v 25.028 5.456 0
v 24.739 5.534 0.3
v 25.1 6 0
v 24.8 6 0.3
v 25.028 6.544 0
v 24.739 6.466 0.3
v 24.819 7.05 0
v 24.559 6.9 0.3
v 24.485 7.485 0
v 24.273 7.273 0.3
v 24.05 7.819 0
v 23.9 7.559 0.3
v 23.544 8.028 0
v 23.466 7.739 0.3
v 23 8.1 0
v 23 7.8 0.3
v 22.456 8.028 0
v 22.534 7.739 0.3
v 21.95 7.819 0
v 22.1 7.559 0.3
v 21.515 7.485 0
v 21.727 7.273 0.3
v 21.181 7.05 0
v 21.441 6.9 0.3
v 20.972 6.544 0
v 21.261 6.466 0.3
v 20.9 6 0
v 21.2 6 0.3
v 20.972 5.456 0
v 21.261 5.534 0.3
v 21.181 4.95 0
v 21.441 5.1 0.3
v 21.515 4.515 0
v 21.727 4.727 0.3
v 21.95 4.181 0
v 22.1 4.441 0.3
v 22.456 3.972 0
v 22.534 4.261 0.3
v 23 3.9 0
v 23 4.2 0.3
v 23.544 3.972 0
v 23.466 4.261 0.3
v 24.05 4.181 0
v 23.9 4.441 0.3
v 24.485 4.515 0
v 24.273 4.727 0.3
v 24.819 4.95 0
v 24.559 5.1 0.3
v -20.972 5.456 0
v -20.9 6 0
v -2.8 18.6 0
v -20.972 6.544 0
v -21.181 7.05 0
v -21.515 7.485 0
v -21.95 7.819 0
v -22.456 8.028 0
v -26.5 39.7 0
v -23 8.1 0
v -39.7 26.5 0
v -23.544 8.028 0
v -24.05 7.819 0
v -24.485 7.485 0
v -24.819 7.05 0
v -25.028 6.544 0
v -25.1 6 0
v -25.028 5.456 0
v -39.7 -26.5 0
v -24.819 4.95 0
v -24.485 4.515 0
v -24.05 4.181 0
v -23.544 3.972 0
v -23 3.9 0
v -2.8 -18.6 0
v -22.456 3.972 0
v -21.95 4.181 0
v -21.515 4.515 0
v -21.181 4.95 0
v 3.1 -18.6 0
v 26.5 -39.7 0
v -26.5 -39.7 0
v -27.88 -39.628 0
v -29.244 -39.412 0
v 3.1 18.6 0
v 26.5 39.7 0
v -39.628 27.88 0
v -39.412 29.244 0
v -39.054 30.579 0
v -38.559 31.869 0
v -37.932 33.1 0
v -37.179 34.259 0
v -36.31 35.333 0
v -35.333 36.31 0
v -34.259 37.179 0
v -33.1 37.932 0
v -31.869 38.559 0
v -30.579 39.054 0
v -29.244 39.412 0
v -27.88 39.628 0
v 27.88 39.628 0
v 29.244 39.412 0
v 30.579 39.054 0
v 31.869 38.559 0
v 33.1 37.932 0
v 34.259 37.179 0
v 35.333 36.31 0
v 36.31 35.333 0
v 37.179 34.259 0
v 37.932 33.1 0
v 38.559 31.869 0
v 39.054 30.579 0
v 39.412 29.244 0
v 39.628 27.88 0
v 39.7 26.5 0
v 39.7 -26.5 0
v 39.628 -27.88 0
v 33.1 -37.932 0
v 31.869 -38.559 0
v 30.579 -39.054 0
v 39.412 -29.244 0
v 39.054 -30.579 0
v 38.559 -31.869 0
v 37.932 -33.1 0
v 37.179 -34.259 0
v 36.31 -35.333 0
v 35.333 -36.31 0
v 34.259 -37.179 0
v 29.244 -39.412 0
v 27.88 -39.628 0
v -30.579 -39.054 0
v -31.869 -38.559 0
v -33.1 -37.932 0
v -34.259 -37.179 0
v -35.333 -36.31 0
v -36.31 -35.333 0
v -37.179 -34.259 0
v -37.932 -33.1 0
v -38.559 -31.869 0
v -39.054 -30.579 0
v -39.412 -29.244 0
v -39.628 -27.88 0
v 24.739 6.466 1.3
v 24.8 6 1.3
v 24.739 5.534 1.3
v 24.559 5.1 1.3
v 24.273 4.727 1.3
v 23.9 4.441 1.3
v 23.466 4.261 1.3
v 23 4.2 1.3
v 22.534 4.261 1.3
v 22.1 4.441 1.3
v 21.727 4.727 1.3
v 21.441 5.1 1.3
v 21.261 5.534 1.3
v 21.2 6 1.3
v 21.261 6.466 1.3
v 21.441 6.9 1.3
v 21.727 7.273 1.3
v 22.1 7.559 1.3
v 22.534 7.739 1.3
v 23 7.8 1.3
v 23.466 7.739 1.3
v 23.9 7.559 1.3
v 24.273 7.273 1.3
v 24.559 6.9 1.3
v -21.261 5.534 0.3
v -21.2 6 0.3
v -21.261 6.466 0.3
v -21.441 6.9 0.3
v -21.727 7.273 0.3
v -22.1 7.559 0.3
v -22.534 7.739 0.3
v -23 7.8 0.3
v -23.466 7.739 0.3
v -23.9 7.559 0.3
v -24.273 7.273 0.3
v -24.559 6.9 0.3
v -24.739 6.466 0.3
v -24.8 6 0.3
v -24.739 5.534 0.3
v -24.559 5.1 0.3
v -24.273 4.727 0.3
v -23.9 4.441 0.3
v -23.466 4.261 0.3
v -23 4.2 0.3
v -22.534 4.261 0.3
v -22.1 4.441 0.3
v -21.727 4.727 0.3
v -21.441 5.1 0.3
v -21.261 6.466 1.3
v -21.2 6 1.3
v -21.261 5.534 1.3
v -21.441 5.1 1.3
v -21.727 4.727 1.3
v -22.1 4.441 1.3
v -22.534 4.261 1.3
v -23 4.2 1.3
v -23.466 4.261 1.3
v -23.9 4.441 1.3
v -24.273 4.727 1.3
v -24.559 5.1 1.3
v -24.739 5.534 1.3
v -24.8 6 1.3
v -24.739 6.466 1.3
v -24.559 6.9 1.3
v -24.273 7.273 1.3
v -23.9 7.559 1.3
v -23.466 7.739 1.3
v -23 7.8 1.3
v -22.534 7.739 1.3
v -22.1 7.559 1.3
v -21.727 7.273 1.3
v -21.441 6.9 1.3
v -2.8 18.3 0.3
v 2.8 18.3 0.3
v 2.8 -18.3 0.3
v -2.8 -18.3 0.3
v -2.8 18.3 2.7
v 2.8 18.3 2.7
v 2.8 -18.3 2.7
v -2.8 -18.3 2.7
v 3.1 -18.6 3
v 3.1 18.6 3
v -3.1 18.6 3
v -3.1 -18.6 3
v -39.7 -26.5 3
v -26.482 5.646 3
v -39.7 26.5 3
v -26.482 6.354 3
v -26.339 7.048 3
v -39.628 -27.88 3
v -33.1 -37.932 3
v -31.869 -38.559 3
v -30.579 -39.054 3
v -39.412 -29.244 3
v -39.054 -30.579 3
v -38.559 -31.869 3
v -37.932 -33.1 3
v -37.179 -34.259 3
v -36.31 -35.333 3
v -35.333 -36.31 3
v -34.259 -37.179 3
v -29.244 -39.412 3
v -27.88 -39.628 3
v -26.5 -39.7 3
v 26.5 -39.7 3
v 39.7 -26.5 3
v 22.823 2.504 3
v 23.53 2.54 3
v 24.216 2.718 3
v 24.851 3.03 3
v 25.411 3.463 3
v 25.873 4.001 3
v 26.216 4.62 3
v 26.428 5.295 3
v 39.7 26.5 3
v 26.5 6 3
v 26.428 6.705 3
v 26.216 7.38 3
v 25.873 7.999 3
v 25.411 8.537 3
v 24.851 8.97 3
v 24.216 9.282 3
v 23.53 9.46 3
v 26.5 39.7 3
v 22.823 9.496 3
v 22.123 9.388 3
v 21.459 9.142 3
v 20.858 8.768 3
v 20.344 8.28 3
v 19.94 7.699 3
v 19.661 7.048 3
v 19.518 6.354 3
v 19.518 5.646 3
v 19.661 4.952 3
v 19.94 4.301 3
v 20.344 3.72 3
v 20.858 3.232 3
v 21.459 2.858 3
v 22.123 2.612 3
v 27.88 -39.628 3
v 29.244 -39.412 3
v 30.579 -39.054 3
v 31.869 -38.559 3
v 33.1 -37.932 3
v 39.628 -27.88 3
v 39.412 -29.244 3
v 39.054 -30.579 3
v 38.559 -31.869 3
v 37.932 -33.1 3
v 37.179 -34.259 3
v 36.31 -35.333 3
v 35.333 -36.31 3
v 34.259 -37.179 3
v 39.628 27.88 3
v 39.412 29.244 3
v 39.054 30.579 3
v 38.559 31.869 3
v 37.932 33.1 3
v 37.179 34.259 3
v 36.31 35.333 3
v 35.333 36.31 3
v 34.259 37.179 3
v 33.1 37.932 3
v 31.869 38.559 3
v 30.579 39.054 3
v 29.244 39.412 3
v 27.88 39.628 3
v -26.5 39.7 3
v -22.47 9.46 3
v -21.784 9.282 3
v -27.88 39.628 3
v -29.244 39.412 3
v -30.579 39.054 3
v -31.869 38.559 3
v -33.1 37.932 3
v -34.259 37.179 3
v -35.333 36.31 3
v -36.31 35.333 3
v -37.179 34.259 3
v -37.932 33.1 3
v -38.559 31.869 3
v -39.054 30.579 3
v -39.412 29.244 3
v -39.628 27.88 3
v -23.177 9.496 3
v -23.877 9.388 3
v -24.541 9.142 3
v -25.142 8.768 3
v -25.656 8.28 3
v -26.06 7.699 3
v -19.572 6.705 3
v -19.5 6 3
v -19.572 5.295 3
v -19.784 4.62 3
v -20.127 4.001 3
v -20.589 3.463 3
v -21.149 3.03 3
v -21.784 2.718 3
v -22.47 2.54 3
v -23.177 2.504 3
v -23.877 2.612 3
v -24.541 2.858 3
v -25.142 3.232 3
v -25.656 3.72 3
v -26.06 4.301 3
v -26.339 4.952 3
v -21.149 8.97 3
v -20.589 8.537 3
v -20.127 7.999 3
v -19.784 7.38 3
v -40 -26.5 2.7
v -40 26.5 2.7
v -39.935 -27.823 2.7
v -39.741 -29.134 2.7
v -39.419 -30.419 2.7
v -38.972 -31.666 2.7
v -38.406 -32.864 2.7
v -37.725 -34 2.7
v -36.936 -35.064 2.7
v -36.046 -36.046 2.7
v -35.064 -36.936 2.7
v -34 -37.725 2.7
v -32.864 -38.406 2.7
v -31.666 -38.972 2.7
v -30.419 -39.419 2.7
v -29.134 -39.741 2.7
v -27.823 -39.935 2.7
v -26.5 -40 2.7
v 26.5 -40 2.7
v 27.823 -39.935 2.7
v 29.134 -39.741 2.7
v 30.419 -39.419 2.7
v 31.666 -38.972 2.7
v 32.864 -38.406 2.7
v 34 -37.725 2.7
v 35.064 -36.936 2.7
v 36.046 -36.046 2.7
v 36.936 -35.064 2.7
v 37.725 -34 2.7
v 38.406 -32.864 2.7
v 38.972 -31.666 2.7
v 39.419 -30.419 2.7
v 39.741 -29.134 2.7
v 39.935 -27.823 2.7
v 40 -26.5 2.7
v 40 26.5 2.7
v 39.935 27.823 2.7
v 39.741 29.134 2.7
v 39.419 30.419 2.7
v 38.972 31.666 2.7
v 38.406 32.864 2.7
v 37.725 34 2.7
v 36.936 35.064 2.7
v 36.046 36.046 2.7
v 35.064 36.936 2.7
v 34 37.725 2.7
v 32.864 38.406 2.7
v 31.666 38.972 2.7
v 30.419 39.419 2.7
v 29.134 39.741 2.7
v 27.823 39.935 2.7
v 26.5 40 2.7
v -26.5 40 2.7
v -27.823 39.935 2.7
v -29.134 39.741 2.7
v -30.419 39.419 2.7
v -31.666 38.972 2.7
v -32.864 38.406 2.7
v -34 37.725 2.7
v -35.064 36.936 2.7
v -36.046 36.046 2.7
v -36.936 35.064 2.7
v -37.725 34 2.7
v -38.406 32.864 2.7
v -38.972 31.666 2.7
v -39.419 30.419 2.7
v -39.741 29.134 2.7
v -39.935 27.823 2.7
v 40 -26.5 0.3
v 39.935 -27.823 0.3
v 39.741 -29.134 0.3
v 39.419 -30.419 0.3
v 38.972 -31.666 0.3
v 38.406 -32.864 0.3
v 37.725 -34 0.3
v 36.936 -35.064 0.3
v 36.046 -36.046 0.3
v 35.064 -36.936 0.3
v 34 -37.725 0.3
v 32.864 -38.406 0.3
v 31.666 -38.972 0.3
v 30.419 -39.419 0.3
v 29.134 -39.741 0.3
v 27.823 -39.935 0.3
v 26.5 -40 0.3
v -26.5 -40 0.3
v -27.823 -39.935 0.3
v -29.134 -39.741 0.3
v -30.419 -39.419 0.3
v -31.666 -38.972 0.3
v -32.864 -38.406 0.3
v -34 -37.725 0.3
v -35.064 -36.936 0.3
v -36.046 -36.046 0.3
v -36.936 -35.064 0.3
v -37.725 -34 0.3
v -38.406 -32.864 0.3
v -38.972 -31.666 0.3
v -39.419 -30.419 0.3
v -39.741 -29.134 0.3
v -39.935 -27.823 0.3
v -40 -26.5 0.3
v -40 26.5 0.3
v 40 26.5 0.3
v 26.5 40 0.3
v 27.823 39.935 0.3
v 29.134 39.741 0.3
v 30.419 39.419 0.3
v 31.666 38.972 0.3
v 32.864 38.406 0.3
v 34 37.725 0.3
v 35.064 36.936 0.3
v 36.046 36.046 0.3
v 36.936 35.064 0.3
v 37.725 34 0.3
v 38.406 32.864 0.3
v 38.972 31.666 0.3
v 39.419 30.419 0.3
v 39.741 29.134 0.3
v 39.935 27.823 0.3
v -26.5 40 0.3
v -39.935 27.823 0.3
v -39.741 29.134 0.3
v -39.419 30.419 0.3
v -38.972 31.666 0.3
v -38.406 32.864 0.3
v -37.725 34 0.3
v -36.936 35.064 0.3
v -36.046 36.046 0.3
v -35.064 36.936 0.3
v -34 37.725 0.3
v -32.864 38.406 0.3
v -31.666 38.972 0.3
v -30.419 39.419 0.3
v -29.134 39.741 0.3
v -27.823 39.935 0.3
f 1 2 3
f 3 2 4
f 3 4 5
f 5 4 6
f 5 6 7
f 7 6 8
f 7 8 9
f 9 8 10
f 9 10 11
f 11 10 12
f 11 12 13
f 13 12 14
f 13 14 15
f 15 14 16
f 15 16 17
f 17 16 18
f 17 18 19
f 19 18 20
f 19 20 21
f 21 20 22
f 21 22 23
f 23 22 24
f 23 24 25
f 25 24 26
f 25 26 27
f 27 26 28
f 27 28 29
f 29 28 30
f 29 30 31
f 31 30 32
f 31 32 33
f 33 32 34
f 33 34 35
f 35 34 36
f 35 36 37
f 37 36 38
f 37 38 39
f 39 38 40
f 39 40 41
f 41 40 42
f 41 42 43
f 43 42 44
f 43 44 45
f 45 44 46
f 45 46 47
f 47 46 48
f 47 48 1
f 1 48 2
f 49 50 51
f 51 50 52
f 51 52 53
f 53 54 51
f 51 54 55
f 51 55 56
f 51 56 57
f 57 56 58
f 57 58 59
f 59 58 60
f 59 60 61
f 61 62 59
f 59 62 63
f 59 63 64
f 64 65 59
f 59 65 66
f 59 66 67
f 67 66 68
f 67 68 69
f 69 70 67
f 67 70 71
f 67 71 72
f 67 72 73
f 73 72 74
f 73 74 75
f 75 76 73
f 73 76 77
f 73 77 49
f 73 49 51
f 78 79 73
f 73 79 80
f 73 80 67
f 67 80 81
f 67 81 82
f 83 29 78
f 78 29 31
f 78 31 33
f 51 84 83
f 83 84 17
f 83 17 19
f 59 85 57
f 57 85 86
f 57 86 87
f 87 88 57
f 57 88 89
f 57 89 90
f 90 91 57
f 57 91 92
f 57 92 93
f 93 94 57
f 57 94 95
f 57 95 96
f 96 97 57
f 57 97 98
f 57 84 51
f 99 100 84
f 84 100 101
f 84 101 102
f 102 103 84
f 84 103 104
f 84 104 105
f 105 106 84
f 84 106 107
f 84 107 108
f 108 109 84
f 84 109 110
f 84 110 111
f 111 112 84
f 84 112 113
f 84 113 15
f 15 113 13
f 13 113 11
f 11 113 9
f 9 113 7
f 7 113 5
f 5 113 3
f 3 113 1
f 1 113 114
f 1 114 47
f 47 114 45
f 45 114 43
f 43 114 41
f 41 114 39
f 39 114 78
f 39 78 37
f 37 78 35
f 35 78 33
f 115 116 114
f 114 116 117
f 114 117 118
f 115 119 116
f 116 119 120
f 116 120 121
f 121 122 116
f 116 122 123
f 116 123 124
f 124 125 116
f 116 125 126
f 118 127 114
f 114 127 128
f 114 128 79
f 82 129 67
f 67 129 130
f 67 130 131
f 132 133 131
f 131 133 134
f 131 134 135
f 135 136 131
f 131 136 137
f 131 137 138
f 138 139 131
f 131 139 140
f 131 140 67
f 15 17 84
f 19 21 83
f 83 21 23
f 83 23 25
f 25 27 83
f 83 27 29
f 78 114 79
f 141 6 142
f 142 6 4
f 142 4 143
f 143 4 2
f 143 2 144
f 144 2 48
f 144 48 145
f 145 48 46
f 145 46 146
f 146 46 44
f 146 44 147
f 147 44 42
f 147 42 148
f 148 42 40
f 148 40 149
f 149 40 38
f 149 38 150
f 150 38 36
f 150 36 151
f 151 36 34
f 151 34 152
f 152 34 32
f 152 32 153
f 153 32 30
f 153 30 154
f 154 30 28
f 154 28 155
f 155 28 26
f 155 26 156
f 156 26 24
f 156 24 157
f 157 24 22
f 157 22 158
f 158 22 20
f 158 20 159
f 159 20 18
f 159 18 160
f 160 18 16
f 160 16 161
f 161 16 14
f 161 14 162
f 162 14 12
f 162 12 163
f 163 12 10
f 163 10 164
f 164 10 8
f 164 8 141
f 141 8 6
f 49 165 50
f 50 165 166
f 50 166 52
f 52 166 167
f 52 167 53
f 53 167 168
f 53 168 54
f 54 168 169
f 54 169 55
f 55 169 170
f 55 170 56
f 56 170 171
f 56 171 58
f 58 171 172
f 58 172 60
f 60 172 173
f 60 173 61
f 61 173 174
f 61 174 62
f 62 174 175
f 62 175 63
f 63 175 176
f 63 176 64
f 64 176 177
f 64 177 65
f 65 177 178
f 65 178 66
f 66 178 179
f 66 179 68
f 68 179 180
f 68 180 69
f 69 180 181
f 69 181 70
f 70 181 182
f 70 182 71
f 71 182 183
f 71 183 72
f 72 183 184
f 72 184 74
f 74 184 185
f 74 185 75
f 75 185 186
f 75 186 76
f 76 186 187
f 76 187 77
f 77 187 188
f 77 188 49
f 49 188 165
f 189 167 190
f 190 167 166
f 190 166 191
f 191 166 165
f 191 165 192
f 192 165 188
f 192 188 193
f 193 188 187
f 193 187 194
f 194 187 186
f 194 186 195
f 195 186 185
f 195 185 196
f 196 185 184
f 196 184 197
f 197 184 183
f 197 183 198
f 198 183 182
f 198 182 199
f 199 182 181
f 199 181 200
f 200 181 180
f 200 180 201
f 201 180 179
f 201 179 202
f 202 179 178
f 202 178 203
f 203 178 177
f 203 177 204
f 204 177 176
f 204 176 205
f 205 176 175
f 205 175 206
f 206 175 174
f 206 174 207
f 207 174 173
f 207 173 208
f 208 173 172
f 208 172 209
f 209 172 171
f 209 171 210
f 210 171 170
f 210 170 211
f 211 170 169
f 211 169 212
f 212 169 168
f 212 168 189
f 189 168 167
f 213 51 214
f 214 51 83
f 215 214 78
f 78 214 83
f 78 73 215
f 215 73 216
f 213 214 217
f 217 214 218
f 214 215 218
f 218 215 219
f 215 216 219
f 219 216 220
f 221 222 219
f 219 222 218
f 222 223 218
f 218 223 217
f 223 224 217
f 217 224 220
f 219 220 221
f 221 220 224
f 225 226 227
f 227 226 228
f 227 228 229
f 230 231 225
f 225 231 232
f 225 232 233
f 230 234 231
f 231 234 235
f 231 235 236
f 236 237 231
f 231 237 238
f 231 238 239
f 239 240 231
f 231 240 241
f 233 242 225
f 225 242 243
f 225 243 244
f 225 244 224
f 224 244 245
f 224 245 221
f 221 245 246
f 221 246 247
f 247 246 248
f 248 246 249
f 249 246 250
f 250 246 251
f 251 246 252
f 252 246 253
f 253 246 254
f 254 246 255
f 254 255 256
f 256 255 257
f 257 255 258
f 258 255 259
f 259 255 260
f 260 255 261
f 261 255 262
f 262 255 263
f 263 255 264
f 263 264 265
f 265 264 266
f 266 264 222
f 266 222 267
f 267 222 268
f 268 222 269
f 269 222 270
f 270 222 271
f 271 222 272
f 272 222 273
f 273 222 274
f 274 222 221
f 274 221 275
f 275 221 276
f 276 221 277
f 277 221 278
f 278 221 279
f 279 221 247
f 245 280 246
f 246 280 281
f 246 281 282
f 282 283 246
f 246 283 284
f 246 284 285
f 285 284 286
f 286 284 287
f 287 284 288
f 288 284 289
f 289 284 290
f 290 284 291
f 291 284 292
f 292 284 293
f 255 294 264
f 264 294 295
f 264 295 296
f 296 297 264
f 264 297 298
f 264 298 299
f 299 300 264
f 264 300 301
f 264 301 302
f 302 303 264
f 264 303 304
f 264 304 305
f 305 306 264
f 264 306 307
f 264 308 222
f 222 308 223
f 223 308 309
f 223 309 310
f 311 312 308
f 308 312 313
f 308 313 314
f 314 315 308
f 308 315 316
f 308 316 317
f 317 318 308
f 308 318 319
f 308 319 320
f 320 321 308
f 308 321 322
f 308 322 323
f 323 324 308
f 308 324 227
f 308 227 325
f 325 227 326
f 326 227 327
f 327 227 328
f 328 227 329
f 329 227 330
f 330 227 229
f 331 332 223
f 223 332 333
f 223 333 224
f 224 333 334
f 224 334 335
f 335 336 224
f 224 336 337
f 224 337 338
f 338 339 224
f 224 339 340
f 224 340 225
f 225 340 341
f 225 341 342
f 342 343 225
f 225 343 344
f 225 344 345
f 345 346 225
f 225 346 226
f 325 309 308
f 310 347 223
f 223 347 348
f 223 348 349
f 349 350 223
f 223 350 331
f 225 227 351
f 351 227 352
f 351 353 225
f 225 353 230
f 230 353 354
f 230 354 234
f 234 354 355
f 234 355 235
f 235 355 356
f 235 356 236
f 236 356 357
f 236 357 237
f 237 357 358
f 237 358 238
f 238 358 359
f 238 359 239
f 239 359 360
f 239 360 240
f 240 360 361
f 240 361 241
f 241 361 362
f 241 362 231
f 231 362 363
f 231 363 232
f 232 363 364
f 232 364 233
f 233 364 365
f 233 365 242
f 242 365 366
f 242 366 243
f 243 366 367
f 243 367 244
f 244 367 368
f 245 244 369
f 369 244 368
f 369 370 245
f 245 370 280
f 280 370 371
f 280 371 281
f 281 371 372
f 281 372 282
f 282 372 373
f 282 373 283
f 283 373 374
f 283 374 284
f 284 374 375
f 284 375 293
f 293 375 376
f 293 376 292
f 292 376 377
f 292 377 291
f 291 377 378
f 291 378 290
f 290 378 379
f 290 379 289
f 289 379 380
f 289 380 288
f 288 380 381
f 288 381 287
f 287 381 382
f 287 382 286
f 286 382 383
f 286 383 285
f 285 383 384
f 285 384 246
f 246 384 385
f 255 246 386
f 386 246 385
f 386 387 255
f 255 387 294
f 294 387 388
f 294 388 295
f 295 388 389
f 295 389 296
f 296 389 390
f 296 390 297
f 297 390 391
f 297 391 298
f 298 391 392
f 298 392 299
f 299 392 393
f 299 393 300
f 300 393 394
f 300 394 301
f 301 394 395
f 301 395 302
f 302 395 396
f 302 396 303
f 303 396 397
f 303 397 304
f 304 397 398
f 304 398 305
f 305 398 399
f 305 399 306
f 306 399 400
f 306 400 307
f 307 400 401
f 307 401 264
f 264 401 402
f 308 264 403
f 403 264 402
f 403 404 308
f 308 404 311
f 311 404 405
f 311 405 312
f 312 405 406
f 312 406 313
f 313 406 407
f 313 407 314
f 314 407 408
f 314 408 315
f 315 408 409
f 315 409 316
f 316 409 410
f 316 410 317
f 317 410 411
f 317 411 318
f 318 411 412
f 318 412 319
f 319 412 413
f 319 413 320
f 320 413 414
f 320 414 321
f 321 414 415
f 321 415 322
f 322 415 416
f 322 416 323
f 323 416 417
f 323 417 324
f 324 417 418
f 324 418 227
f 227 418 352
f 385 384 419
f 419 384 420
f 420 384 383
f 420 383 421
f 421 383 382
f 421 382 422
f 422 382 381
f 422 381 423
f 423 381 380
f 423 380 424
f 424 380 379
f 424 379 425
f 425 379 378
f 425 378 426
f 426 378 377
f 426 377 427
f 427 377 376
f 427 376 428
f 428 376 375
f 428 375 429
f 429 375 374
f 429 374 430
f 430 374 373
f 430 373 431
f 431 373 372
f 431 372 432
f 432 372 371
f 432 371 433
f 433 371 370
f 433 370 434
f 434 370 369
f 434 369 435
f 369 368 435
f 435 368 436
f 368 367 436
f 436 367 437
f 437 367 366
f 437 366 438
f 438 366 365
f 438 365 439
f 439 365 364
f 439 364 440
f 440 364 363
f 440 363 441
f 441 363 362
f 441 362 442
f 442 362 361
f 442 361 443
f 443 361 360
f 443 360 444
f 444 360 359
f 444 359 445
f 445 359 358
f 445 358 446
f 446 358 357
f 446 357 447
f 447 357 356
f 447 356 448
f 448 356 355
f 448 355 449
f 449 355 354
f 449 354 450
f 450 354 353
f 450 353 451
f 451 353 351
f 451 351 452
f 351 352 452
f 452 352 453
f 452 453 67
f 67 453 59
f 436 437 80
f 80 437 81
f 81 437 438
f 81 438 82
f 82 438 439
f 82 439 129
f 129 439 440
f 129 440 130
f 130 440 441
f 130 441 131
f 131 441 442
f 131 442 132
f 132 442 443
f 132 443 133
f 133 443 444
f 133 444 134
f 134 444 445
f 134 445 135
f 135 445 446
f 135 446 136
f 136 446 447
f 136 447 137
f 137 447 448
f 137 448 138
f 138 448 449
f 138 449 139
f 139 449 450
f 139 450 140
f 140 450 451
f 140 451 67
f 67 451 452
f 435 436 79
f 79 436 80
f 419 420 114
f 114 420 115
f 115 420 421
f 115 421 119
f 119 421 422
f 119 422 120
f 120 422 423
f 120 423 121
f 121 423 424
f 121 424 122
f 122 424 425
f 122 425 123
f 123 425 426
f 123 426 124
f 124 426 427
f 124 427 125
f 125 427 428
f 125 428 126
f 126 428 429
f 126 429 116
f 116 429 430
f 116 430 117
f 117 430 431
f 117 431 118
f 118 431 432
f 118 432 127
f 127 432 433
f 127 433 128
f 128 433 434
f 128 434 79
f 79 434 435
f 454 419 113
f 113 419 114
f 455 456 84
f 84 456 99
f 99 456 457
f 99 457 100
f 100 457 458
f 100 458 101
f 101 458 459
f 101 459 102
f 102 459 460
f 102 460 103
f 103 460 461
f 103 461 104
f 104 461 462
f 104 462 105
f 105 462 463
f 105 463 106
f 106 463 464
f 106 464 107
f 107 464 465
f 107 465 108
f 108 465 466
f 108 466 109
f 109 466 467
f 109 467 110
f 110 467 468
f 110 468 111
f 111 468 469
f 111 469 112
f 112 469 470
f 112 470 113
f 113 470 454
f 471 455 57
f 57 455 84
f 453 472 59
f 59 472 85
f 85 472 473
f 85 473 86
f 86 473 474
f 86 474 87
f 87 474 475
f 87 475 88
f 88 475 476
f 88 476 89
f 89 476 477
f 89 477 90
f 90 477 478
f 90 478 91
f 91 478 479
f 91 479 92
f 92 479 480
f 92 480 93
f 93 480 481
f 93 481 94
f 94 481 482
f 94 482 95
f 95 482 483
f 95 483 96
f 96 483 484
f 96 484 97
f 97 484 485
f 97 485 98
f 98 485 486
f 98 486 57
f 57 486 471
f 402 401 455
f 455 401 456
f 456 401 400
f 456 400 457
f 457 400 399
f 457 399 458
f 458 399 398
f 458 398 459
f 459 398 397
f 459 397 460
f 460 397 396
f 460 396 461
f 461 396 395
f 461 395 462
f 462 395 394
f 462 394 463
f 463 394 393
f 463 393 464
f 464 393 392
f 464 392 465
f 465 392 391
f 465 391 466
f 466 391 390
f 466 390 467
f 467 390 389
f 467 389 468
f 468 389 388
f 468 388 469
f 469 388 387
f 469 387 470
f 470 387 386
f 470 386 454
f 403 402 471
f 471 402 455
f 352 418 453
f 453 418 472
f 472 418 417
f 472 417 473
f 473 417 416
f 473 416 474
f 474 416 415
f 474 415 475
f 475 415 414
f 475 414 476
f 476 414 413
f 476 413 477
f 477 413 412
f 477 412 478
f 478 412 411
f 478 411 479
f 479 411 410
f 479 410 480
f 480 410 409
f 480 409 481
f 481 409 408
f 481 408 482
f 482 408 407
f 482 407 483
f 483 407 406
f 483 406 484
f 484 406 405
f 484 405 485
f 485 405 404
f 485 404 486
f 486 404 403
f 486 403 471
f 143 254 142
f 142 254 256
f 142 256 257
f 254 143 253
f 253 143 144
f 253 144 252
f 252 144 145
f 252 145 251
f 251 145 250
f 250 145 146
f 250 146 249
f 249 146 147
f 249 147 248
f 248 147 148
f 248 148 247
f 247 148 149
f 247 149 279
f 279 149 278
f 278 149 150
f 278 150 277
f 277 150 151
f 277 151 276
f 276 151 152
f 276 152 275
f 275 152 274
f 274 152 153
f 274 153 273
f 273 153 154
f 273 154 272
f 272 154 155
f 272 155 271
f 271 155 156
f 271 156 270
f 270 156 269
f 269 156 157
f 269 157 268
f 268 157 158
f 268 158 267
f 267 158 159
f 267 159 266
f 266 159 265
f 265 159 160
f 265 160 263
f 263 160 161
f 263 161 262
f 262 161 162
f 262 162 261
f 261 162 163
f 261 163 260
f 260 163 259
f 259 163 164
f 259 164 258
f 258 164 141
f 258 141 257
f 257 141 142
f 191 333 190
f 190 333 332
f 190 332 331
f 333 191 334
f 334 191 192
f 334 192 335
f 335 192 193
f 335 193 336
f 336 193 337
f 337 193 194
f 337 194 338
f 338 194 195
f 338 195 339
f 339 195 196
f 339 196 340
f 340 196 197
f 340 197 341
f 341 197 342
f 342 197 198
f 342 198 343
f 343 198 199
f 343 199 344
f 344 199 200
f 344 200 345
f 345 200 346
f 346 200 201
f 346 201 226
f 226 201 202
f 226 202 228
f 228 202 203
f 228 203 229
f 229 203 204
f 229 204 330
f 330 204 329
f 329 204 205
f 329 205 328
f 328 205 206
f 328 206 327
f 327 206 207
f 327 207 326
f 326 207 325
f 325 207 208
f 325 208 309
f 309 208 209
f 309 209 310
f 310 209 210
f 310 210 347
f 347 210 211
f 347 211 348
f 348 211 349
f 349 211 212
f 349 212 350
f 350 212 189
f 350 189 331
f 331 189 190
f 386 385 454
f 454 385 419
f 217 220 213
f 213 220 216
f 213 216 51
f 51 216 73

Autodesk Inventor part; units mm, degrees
ref_plane "YZ Plane" through (0, 0, 0) normal (1, 0, 0) x (0, 1, 0)
ref_plane "XZ Plane" through (0, 0, 0) normal (0, 1, 0) x (-1, 0, 0)
ref_plane "XY Plane" through (0, 0, 0) normal (0, 0, 1) x (1, 0, 0)
sketch "Sketch1" plane through (0, 0, 0) normal (0, 0, 1) x (1, 0, 0)
  line L0 (-40, -40) -> (40, -40)
  line L1 (40, -40) -> (40, 40)
  line L2 (40, 40) -> (-40, 40)
  line L3 (-40, 40) -> (-40, -40)
  line L4 (-40, -40) -> (40, 40) construction
  line L5 (40, -40) -> (-40, 40) construction
  line L6 (-2.8, -18.3) -> (2.8, -18.3)
  line L7 (2.8, -18.3) -> (2.8, 18.3)
  line L8 (2.8, 18.3) -> (-2.8, 18.3)
  line L9 (-2.8, 18.3) -> (-2.8, -18.3)
  line L10 (-2.8, -18.3) -> (2.8, 18.3) construction
  line L11 (2.8, -18.3) -> (-2.8, 18.3) construction
  circle A0 centre (23, 6) radius 1.8
  line L12 (0, 56) -> (0, -56) construction
  circle A1 centre (-23, 6) radius 1.8
  point P0 (0, 0)
  dimension "d0" = 80
  dimension "d1" = 80
  dimension "d2" = 5.6
  dimension "d3" = 36.6
  dimension "d4" = 3.6
  dimension "d5" = 12.3
  dimension "d6" = 23
extrude "Extrusion1" add sketch "Sketch1" along normal blind 3
fillet "Fillet1" radius 13.5 4 edges at (40, 40, 1.5) (40, -40, 1.5) (-40, -40, 1.5) (-40, 40, 1.5)
chamfer "Chamfer1" distance 1.7 angle 45 2 edges at (-24.8, 6, 3) (21.2, 6, 3)
chamfer "Chamfer2" distance 0.3 angle 45 25 edges at (-40, 0, 0) (-36.0459, -36.0459, 0) (0, -40, 0) (36.0459, -36.0459, 0) (40, 0, 0) (36.0459, 36.0459, 0) (0, 40, 0) (-36.0459, 36.0459, 0) (-40, 0, 3) (-36.0459, -36.0459, 3) (0, -40, 3) (36.0459, -36.0459, 3) (40, 0, 3) (36.0459, 36.0459, 3) (0, 40, 3) (-36.0459, 36.0459, 3) (-2.8, 0, 3) (2.8, 0, 3) (0, 18.3, 3) (2.8, 0, 0) (0, -18.3, 3) (0, 18.3, 0) (0, -18.3, 0) (-24.8, 6, 0) (21.2, 6, 0)
properties part number "TopV3Back"
